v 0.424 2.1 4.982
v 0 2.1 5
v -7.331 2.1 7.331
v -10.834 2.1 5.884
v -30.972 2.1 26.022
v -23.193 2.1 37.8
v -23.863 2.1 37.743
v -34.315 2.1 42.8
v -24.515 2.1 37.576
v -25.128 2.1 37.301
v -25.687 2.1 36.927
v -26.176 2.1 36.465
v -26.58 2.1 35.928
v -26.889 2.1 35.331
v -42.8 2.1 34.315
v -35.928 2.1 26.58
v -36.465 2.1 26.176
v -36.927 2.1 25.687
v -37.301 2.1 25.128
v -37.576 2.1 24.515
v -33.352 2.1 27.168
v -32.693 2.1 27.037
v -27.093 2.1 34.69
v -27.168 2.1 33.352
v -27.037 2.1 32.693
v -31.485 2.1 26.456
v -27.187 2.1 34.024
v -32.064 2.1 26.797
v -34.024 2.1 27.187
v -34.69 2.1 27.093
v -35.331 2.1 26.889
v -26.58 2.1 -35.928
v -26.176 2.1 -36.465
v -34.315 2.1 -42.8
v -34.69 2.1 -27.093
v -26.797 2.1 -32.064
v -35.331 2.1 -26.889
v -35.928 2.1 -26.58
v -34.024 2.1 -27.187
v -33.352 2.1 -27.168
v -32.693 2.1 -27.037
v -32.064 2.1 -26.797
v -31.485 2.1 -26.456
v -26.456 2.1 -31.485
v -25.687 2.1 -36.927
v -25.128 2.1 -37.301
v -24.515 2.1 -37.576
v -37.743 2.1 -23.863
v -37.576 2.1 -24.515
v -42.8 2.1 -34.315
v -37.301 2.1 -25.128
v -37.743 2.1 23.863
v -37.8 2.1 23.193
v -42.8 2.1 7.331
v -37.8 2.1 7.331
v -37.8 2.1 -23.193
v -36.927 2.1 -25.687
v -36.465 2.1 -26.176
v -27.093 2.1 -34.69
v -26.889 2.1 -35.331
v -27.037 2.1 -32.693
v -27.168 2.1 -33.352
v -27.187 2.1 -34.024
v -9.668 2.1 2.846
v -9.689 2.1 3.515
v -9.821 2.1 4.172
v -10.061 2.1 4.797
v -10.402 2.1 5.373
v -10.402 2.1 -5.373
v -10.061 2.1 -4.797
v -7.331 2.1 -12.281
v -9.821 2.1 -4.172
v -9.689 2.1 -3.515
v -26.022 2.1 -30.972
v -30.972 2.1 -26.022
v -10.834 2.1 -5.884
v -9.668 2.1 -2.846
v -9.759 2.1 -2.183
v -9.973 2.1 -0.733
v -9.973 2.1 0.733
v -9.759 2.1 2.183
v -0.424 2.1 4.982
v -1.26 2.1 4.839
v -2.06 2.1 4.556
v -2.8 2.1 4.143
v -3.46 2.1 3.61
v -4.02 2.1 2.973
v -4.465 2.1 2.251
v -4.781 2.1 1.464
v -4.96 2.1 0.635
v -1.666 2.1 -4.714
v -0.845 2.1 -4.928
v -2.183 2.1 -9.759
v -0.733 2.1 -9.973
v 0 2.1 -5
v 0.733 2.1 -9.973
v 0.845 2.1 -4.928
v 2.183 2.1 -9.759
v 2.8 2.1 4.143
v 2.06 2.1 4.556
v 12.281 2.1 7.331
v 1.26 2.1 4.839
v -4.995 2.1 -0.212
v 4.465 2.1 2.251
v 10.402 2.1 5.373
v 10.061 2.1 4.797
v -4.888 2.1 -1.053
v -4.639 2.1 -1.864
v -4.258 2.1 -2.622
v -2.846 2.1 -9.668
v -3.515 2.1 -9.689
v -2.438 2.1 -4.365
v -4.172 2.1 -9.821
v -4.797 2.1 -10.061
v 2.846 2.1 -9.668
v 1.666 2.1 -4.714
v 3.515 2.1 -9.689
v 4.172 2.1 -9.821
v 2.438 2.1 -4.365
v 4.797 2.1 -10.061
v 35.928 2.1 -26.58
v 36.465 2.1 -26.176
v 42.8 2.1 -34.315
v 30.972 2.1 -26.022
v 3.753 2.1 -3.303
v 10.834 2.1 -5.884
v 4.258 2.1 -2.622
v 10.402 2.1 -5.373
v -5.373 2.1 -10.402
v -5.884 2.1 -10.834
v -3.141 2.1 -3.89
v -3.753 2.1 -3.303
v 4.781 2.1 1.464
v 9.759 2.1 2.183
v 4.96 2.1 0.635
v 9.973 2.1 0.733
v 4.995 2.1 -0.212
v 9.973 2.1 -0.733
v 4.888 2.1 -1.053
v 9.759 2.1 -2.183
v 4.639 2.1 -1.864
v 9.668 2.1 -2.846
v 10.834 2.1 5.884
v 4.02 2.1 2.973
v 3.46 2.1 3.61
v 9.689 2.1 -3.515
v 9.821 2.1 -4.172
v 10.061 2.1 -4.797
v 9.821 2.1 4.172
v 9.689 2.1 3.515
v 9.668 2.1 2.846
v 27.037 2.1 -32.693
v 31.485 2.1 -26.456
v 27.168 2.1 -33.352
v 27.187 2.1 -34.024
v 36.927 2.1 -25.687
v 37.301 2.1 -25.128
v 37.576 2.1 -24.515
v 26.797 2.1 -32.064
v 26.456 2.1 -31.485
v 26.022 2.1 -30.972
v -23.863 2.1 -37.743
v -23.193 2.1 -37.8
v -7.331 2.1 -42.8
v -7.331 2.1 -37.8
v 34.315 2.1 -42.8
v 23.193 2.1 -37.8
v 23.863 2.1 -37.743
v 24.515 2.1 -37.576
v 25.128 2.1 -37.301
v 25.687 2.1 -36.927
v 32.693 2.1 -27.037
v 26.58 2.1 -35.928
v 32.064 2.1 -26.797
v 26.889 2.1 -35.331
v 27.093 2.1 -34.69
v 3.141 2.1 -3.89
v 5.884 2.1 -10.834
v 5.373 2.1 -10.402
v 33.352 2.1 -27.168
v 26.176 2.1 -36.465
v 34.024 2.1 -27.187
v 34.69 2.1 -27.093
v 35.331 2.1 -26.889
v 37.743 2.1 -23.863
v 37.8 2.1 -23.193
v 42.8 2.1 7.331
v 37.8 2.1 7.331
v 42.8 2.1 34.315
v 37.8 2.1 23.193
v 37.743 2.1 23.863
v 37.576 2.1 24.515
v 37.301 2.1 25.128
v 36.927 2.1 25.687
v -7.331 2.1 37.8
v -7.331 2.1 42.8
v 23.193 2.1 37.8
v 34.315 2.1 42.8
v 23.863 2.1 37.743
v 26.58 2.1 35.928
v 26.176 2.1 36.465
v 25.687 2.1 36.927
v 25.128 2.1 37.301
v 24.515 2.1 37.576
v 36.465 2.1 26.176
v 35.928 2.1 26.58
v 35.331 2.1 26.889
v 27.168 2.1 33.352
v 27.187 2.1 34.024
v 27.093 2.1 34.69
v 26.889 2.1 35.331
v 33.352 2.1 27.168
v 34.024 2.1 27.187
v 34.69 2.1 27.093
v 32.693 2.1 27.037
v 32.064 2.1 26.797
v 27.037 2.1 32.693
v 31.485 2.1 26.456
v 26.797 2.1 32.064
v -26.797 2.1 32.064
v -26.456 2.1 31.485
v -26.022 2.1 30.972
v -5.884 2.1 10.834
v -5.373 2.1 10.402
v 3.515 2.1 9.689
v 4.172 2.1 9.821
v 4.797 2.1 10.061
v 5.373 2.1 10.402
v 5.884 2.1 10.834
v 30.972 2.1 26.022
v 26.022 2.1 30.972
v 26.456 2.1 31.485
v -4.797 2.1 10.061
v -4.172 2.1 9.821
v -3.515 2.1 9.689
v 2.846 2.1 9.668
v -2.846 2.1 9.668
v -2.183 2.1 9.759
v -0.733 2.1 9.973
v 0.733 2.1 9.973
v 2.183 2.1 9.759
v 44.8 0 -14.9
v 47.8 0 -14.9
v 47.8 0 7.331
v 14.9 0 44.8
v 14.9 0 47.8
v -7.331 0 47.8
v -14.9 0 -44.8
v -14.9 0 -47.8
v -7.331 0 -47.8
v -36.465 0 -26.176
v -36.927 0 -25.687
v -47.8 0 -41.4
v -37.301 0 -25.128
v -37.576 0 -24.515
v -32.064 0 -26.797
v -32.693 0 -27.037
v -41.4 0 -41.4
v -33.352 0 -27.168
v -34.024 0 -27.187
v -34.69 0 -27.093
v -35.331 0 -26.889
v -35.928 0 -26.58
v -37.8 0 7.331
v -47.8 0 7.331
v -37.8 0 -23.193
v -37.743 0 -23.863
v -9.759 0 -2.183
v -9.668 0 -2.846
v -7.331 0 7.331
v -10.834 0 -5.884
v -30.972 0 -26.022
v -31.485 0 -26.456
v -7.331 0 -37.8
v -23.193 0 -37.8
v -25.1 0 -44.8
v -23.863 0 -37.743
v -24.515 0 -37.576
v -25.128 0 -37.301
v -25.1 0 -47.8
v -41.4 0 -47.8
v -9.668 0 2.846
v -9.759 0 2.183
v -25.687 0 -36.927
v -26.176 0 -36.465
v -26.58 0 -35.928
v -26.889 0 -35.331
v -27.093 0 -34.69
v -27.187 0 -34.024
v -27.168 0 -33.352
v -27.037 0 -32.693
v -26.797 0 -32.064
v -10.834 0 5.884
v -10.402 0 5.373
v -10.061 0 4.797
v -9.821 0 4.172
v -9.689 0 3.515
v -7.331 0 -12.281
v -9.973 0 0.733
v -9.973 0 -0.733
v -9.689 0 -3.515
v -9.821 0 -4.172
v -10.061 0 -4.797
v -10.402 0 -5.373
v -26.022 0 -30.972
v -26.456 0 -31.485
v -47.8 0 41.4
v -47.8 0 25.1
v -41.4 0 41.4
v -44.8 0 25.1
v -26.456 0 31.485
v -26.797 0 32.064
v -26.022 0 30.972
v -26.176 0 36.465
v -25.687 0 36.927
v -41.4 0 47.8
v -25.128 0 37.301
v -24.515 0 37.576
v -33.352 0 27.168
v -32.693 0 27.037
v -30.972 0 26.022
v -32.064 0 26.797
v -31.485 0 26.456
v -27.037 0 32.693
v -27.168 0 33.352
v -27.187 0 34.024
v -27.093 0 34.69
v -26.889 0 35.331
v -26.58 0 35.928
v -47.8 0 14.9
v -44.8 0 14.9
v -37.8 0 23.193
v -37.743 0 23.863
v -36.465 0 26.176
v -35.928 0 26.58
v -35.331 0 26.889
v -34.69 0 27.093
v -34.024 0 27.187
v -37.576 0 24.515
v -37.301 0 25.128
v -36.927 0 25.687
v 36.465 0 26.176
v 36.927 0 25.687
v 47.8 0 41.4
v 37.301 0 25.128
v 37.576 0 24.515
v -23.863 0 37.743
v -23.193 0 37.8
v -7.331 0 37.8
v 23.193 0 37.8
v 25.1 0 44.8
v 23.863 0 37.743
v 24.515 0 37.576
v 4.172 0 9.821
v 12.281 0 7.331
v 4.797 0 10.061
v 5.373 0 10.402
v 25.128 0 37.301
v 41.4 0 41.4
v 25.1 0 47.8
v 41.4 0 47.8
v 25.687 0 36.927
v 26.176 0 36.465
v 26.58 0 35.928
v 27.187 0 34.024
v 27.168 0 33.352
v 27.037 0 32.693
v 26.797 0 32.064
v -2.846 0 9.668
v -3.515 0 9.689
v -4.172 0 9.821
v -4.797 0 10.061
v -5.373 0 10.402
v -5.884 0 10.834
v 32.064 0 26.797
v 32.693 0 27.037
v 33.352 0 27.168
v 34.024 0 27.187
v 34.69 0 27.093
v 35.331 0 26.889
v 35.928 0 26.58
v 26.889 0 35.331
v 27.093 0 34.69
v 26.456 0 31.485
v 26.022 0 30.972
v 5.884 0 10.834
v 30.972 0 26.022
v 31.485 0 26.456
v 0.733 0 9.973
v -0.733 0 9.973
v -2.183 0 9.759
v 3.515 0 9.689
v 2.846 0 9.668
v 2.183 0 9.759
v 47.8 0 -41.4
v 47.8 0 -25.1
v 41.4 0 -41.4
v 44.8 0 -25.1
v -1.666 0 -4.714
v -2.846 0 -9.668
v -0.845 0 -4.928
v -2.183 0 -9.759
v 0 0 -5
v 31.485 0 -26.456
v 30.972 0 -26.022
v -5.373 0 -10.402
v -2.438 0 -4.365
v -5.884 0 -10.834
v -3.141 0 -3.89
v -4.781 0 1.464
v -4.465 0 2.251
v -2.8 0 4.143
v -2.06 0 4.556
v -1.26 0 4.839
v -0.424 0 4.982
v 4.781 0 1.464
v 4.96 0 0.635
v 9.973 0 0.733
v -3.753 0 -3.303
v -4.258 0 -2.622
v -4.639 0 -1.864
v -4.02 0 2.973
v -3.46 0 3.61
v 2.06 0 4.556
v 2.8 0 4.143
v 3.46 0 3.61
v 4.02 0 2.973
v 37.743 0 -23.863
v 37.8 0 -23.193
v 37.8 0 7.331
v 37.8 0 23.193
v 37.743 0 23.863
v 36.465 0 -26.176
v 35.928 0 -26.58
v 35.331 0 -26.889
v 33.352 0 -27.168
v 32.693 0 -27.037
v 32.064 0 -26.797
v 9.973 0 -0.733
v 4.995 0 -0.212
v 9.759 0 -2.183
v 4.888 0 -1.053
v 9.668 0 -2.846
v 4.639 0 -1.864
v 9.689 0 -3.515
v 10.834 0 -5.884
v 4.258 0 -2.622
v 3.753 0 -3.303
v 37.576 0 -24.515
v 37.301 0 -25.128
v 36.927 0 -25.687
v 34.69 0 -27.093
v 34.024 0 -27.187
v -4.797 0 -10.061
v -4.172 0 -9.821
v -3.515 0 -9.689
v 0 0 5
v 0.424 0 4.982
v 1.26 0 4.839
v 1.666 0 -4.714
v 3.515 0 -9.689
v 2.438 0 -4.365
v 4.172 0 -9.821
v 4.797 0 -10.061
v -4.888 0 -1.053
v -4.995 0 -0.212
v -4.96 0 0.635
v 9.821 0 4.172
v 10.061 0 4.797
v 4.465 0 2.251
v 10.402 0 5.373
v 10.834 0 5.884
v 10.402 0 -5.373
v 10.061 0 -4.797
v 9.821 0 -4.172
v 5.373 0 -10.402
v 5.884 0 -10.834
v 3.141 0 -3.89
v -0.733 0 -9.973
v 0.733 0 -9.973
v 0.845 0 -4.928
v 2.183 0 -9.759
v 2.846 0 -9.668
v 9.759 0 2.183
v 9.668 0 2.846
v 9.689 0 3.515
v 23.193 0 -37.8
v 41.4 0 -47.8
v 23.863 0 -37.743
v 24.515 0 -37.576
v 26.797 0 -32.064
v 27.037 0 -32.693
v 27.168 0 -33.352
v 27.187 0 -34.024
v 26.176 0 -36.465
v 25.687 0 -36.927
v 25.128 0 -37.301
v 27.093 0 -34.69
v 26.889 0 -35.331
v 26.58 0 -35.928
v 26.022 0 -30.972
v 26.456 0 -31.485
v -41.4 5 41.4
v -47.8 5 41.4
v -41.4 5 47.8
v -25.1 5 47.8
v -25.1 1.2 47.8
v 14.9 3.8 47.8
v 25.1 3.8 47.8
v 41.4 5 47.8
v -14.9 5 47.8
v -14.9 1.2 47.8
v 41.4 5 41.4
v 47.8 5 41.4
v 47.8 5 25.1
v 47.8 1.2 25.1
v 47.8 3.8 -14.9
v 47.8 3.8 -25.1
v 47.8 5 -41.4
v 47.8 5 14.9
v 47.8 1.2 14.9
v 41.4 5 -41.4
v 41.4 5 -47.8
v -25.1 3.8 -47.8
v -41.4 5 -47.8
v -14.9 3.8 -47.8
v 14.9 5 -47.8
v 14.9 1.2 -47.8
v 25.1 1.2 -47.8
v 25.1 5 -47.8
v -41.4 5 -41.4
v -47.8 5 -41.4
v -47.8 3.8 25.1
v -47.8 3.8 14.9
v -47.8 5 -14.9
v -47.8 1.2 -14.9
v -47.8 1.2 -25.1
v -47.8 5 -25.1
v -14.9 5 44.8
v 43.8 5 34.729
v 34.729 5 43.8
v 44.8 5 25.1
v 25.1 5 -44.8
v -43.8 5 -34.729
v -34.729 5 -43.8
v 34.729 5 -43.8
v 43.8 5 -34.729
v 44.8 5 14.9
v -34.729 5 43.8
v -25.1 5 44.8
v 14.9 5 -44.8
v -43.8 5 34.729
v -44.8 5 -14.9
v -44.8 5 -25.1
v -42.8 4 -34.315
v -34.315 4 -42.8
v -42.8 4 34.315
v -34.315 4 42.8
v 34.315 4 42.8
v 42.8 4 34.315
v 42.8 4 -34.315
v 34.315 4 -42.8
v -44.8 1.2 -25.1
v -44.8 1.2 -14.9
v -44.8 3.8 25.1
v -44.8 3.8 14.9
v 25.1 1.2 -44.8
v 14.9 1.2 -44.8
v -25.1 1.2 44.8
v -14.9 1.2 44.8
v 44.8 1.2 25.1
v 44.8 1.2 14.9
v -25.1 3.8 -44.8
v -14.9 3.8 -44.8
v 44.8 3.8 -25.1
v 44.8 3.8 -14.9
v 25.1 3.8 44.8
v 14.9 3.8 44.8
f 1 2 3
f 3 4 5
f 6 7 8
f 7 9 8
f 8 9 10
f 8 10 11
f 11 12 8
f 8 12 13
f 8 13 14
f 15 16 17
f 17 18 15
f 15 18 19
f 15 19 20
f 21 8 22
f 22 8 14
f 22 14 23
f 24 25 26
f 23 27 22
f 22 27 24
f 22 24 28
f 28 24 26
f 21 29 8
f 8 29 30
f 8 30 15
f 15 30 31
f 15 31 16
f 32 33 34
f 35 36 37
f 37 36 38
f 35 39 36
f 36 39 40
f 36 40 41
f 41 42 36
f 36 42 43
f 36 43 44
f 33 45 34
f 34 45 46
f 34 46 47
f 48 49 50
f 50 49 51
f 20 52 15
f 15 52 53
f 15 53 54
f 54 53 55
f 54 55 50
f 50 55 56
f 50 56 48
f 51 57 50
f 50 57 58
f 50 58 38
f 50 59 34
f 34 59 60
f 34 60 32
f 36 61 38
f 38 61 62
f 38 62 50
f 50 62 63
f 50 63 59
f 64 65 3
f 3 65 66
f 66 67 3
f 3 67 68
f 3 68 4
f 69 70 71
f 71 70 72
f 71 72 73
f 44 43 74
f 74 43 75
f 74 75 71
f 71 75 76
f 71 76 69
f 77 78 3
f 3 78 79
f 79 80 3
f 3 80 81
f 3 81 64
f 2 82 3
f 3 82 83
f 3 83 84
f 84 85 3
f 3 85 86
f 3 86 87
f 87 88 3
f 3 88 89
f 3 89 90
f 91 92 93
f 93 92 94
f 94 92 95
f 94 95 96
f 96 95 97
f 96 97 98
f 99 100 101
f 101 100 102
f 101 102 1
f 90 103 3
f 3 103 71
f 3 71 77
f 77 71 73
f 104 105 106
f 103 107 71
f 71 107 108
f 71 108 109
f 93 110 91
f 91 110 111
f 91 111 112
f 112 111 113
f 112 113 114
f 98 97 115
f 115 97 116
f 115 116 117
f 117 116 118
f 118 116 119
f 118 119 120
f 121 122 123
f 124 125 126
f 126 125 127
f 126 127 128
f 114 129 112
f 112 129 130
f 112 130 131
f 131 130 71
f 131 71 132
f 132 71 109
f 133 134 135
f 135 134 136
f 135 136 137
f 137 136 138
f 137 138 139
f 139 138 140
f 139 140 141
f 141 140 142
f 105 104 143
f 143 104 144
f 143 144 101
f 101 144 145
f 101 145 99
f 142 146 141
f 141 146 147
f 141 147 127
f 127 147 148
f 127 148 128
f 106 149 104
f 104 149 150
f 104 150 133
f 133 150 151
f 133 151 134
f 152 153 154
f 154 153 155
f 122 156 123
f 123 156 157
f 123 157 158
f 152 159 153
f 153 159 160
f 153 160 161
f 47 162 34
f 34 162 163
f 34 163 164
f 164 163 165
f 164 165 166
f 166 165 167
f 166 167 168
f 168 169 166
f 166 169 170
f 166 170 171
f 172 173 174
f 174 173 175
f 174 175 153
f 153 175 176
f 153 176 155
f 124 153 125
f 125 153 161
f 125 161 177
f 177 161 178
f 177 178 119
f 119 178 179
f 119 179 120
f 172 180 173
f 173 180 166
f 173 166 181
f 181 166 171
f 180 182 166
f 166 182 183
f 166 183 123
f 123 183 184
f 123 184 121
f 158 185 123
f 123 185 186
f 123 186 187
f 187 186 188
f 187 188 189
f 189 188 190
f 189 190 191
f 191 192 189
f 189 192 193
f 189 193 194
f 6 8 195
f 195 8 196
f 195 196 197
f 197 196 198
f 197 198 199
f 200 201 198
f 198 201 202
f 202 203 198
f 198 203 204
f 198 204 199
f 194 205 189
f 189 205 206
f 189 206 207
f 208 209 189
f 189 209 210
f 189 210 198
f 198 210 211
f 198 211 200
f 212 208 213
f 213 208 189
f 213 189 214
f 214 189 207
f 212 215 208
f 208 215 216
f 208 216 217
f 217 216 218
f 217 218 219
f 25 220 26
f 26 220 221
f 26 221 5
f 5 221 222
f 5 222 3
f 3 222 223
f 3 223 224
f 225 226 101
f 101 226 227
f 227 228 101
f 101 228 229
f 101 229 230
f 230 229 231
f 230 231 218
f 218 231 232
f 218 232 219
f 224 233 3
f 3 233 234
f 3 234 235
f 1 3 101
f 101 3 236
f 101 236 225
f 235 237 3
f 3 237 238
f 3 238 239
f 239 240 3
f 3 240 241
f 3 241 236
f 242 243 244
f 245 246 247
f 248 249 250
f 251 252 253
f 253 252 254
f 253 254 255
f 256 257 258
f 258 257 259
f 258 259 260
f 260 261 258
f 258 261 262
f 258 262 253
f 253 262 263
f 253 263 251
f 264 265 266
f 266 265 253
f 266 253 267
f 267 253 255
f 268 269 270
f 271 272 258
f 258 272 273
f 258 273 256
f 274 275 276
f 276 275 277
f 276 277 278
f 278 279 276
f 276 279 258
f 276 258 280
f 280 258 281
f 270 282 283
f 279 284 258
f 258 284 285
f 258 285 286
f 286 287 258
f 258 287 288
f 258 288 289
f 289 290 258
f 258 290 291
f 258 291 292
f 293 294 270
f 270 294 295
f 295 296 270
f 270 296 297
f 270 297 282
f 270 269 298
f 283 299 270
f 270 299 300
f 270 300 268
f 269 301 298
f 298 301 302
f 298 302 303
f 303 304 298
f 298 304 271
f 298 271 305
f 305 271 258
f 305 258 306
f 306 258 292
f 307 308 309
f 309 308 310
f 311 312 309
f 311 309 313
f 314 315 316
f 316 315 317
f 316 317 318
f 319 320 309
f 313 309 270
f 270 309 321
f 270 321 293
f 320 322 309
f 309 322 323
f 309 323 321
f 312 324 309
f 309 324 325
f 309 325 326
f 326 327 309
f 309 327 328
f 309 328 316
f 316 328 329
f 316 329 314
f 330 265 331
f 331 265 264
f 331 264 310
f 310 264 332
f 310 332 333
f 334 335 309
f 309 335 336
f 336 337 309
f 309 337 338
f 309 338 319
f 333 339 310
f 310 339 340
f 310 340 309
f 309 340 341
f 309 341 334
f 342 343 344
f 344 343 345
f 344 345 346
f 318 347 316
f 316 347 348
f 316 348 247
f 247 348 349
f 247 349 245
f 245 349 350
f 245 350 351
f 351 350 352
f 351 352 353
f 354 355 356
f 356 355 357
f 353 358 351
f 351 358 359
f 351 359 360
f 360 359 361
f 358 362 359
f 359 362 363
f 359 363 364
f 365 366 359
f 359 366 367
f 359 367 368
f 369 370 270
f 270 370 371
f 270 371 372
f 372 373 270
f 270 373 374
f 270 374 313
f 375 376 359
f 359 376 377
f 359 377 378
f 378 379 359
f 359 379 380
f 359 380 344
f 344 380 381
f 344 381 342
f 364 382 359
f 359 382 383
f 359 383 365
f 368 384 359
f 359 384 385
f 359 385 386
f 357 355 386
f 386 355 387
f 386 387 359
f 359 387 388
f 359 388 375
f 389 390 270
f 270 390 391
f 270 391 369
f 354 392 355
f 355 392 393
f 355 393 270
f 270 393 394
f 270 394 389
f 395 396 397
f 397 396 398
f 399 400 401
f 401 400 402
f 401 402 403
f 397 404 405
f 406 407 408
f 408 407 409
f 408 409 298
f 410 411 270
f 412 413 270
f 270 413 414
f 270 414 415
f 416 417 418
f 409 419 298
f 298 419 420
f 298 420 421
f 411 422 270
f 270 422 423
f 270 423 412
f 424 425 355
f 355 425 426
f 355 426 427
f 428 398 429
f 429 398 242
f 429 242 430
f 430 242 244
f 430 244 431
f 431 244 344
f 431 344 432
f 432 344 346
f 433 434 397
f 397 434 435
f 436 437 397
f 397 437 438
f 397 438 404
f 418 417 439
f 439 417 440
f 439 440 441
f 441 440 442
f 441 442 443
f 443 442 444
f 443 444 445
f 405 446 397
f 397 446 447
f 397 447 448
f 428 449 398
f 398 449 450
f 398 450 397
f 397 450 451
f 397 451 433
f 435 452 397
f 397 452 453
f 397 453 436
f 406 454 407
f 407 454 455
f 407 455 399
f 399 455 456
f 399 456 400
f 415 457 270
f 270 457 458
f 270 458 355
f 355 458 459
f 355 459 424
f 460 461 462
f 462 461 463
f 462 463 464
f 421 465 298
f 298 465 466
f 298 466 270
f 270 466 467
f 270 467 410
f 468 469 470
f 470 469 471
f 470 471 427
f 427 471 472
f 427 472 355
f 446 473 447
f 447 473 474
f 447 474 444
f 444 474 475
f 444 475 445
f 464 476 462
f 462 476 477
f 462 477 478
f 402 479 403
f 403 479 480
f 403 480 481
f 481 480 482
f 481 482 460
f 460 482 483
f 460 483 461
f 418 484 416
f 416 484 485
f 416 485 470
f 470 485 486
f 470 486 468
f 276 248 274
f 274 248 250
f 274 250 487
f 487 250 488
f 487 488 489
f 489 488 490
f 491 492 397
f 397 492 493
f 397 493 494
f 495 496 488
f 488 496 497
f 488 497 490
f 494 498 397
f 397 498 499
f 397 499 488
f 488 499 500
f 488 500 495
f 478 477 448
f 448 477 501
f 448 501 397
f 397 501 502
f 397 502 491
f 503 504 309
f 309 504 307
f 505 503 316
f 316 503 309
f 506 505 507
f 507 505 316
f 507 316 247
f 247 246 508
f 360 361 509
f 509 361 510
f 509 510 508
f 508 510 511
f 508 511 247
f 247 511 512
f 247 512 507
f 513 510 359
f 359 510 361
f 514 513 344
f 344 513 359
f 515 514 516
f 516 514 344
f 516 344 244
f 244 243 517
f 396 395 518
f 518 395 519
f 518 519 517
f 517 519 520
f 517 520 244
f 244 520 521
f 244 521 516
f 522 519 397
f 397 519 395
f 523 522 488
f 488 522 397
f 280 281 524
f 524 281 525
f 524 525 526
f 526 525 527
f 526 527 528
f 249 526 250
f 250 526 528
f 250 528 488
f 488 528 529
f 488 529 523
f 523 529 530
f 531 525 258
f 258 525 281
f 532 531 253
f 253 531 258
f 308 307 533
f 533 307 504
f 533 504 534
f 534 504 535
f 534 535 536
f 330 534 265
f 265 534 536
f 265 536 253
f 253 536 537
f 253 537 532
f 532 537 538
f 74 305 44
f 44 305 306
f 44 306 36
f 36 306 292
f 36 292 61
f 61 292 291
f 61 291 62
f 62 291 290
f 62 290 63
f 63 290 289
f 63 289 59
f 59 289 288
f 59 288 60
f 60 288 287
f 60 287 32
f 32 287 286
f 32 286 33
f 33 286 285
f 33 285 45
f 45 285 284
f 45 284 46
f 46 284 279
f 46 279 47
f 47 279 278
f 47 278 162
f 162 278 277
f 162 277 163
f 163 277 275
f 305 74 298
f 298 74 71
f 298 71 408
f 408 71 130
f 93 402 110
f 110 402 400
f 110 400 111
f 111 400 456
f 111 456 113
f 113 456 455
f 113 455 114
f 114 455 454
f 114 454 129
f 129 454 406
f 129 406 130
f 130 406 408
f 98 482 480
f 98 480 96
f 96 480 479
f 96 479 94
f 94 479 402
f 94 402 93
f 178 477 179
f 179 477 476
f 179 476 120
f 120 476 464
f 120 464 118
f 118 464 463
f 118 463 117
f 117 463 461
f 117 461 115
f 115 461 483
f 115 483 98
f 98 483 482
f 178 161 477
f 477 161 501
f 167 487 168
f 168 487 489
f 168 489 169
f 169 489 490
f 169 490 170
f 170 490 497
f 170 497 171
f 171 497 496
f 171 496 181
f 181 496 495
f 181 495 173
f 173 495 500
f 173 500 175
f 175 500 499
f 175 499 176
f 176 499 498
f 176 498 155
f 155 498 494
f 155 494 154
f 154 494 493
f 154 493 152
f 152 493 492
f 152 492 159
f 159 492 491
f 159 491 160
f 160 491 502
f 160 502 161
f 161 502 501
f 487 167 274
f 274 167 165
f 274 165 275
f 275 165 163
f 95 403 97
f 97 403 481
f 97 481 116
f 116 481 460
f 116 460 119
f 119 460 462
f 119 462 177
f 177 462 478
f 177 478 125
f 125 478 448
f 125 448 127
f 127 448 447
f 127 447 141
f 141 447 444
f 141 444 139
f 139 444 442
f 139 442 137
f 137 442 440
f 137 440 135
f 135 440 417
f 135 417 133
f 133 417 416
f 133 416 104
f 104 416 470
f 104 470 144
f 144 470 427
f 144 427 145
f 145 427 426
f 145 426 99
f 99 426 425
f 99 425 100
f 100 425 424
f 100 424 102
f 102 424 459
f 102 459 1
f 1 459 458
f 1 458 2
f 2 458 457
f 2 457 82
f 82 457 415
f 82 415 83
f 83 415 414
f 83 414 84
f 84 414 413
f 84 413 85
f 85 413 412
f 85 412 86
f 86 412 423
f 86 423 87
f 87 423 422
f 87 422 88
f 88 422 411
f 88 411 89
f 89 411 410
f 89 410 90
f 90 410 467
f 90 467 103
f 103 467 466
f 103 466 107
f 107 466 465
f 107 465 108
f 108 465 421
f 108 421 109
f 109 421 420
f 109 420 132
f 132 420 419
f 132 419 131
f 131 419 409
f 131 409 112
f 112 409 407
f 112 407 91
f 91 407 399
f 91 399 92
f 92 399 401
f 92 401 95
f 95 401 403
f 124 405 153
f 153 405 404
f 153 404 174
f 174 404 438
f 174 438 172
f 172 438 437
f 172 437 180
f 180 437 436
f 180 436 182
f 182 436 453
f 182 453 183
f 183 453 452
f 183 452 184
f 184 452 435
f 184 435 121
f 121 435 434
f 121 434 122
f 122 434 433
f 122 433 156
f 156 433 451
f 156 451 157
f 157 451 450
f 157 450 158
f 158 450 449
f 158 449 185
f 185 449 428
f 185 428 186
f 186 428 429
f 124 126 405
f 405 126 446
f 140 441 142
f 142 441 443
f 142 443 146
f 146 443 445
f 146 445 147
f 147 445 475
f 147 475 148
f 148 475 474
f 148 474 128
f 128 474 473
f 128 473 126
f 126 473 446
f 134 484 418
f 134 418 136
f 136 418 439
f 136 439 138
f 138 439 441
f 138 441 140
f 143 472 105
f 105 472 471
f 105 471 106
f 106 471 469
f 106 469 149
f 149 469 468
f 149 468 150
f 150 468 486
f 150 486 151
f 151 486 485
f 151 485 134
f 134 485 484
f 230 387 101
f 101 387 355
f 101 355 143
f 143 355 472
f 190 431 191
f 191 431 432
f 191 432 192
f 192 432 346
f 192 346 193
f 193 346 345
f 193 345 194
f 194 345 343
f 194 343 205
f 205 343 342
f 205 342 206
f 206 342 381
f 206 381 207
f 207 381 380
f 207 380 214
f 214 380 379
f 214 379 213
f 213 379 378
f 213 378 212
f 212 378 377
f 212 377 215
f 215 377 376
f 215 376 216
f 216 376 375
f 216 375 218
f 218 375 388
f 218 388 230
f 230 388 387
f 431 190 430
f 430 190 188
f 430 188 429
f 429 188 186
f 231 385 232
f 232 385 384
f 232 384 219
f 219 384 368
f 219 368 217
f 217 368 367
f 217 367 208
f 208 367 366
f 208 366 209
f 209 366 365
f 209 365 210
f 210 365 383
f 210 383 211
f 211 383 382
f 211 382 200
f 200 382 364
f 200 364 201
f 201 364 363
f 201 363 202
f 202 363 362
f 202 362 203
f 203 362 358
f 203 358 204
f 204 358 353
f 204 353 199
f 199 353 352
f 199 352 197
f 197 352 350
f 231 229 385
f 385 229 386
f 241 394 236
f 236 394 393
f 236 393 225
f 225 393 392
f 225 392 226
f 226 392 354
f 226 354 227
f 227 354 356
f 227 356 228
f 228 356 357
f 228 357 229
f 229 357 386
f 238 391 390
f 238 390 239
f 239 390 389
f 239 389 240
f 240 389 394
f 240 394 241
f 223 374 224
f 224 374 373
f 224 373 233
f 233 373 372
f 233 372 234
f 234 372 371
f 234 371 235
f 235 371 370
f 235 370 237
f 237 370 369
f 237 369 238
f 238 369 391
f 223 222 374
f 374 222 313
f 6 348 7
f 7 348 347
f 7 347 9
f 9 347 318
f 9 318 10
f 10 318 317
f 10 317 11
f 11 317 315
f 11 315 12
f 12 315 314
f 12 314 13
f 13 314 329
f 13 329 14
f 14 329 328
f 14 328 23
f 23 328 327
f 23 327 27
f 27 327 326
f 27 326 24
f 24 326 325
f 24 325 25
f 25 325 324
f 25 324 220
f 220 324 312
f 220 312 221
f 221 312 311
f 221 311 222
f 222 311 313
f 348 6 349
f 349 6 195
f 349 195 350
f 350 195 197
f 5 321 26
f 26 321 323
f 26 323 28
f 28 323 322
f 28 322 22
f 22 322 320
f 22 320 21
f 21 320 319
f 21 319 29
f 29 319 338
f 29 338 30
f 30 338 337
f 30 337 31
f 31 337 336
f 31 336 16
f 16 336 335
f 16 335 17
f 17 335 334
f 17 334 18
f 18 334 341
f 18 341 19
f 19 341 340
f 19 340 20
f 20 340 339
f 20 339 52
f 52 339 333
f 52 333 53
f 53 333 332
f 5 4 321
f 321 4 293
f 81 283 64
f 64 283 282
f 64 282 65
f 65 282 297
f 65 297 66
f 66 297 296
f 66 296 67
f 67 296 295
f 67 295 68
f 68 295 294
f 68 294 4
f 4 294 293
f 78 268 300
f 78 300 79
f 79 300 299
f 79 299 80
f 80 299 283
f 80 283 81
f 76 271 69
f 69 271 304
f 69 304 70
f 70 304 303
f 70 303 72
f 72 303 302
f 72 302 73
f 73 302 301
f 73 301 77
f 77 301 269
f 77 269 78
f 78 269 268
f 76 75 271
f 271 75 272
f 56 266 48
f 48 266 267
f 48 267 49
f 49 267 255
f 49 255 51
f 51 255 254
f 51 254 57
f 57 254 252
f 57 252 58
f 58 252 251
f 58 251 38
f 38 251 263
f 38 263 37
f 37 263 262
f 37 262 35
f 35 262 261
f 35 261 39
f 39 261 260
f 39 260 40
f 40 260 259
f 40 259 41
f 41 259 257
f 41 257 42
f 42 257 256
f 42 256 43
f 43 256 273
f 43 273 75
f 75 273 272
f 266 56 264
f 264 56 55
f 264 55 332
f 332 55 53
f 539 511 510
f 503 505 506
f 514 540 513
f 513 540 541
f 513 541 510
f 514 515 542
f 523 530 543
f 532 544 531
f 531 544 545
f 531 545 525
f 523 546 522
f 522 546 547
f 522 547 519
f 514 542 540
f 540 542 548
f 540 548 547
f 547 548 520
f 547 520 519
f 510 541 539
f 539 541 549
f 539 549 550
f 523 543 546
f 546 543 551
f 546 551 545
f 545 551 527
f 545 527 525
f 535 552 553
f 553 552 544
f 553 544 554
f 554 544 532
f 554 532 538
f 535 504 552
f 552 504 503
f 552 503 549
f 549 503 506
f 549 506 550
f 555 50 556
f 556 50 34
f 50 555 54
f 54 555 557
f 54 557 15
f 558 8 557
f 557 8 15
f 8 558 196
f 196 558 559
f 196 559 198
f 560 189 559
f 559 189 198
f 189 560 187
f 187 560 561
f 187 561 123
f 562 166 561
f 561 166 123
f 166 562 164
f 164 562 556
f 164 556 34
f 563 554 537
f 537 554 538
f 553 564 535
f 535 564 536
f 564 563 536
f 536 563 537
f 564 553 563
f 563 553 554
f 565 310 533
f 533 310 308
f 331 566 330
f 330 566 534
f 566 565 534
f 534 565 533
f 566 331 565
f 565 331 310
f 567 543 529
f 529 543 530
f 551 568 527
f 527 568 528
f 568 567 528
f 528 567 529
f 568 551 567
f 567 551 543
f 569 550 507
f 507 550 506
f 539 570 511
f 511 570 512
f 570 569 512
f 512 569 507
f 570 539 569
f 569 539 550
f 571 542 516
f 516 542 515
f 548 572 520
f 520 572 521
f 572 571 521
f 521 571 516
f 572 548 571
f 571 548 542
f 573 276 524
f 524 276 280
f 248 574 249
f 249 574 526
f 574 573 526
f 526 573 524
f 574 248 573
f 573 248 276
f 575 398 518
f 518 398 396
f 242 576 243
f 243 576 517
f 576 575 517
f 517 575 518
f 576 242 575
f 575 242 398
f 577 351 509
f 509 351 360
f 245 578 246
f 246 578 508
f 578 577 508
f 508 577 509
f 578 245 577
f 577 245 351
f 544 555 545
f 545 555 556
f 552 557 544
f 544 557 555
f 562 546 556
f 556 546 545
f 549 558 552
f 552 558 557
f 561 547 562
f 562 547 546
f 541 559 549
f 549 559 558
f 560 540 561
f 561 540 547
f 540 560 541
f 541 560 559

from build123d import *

# Parameters (mm, degrees)
SKETCH1_R           = 5
BOSS_EXTRUDE1_DEPTH = 2.1
BOSS_EXTRUDE2_DEPTH = 2.9
SKETCH3_W           = 10.2
SKETCH3_H           = 3.8
CUT_EXTRUDE1_DEPTH  = 3
CIRPATTERN1_COUNT   = 4
CHAMFER1_SIZE       = 1


with BuildPart() as part:
    # Sketch1 → Boss-Extrude1 (new body)
    with BuildSketch(Plane(origin=(0, 0, 0), x_dir=(1, 0, 0), z_dir=(0, 1, 0))):
        Polygon((-47.8, -41.4), (-47.8, 41.4), (-41.4, 41.4), (-41.4, 47.8), (41.4, 47.8), (41.4, 41.4), (47.8, 41.4), (47.8, -41.4), (41.4, -41.4), (41.4, -47.8), (-41.4, -47.8), (-41.4, -41.4), align=None)
        Circle(SKETCH1_R, mode=Mode.SUBTRACT)
        with BuildLine():
            Line((-30.971572875, -26.021825407), (-10.834000483, -5.884253014))
            ThreePointArc((-10.834000483, -5.884253014), (-9.821178524, -4.171534398), (-9.758876863, -2.182732778))
            ThreePointArc((-9.758876863, -2.182732778), (-10, 0), (-9.758876863, 2.182732778))
            ThreePointArc((-9.758876863, 2.182732778), (-9.821178524, 4.171534398), (-10.834000483, 5.884253014))
            Line((-10.834000483, 5.884253014), (-30.971572875, 26.021825407))
            ThreePointArc((-30.971572875, 26.021825407), (-35.330733729, 26.888916412), (-37.8, 23.193398282))
            Line((-37.8, 23.193398282), (-37.8, -23.193398282))
            ThreePointArc((-37.8, -23.193398282), (-35.330733729, -26.888916412), (-30.971572875, -26.021825407))
        make_face(mode=Mode.SUBTRACT)
        with BuildLine():
            Line((-26.021825407, -30.971572875), (-5.884253014, -10.834000483))
            ThreePointArc((-5.884253014, -10.834000483), (-4.171534398, -9.821178524), (-2.182732778, -9.758876863))
            ThreePointArc((-2.182732778, -9.758876863), (0, -10), (2.182732778, -9.758876863))
            ThreePointArc((2.182732778, -9.758876863), (4.171534398, -9.821178524), (5.884253014, -10.834000483))
            Line((5.884253014, -10.834000483), (26.021825407, -30.971572875))
            ThreePointArc((26.021825407, -30.971572875), (26.888916412, -35.330733729), (23.193398282, -37.8))
            Line((23.193398282, -37.8), (-23.193398282, -37.8))
            ThreePointArc((-23.193398282, -37.8), (-26.888916412, -35.330733729), (-26.021825407, -30.971572875))
        make_face(mode=Mode.SUBTRACT)
        with BuildLine():
            Line((30.971572875, -26.021825407), (10.834000483, -5.884253014))
            ThreePointArc((10.834000483, -5.884253014), (9.821178524, -4.171534398), (9.758876863, -2.182732778))
            ThreePointArc((9.758876863, -2.182732778), (10, 0), (9.758876863, 2.182732778))
            ThreePointArc((9.758876863, 2.182732778), (9.821178524, 4.171534398), (10.834000483, 5.884253014))
            Line((10.834000483, 5.884253014), (30.971572875, 26.021825407))
            ThreePointArc((30.971572875, 26.021825407), (35.330733729, 26.888916412), (37.8, 23.193398282))
            Line((37.8, 23.193398282), (37.8, -23.193398282))
            ThreePointArc((37.8, -23.193398282), (35.330733729, -26.888916412), (30.971572875, -26.021825407))
        make_face(mode=Mode.SUBTRACT)
        with BuildLine():
            Line((-26.021825407, 30.971572875), (-5.884253014, 10.834000483))
            ThreePointArc((-5.884253014, 10.834000483), (-4.171534398, 9.821178524), (-2.182732778, 9.758876863))
            ThreePointArc((-2.182732778, 9.758876863), (0, 10), (2.182732778, 9.758876863))
            ThreePointArc((2.182732778, 9.758876863), (4.171534398, 9.821178524), (5.884253014, 10.834000483))
            Line((5.884253014, 10.834000483), (26.021825407, 30.971572875))
            ThreePointArc((26.021825407, 30.971572875), (26.888916412, 35.330733729), (23.193398282, 37.8))
            Line((23.193398282, 37.8), (-23.193398282, 37.8))
            ThreePointArc((-23.193398282, 37.8), (-26.888916412, 35.330733729), (-26.021825407, 30.971572875))
        make_face(mode=Mode.SUBTRACT)
    extrude(amount=BOSS_EXTRUDE1_DEPTH)

    # Sketch2 → Boss-Extrude2 (add)
    with BuildSketch(Plane(origin=(0, 2.1, 0), x_dir=(1, 0, 0), z_dir=(0, 1, 0))):
        Polygon((-47.8, -41.4), (-41.4, -41.4), (-41.4, -47.8), (41.4, -47.8), (41.4, -41.4), (47.8, -41.4), (47.8, 41.4), (41.4, 41.4), (41.4, 47.8), (-41.4, 47.8), (-41.4, 41.4), (-47.8, 41.4), align=None)
        Polygon((-42.8, 34.314718626), (-42.8, -34.314718626), (-34.314718626, -42.8), (34.314718626, -42.8), (42.8, -34.314718626), (42.8, 34.314718626), (34.314718626, 42.8), (-34.314718626, 42.8), align=None, mode=Mode.SUBTRACT)
    extrude(amount=BOSS_EXTRUDE2_DEPTH)

    # Sketch3 → Cut-Extrude1 (cut)
    with BuildSketch(Plane.ZY.offset(47.8)):
        with Locations((20, 1.9)):
            Rectangle(SKETCH3_W, SKETCH3_H)
        with Locations((-20, 3.1)):
            Rectangle(SKETCH3_W, SKETCH3_H)
    cut_extrude1 = extrude(amount=-CUT_EXTRUDE1_DEPTH, mode=Mode.SUBTRACT)

    # CirPattern1: Cut-Extrude1 ×4 about axis
    cirpattern1_axis = Axis((0, 0, 0), (0, 1, 0))
    for i in range(1, CIRPATTERN1_COUNT):
        add(cut_extrude1.rotate(cirpattern1_axis, i * 360 / CIRPATTERN1_COUNT), mode=Mode.SUBTRACT)

    # Chamfer1
    chamfer1_edges = [part.edges().sort_by_distance(p)[0] for p in [
        (-38.557359313, 5, -38.557359313),
        (-42.8, 5, 0),
        (-38.557359313, 5, 38.557359313),
        (0, 5, 42.8),
        (38.557359313, 5, 38.557359313),
        (42.8, 5, 0),
        (38.557359313, 5, -38.557359313),
        (0, 5, -42.8),
    ]]
    chamfer(chamfer1_edges, length=CHAMFER1_SIZE)


solid = part.part
